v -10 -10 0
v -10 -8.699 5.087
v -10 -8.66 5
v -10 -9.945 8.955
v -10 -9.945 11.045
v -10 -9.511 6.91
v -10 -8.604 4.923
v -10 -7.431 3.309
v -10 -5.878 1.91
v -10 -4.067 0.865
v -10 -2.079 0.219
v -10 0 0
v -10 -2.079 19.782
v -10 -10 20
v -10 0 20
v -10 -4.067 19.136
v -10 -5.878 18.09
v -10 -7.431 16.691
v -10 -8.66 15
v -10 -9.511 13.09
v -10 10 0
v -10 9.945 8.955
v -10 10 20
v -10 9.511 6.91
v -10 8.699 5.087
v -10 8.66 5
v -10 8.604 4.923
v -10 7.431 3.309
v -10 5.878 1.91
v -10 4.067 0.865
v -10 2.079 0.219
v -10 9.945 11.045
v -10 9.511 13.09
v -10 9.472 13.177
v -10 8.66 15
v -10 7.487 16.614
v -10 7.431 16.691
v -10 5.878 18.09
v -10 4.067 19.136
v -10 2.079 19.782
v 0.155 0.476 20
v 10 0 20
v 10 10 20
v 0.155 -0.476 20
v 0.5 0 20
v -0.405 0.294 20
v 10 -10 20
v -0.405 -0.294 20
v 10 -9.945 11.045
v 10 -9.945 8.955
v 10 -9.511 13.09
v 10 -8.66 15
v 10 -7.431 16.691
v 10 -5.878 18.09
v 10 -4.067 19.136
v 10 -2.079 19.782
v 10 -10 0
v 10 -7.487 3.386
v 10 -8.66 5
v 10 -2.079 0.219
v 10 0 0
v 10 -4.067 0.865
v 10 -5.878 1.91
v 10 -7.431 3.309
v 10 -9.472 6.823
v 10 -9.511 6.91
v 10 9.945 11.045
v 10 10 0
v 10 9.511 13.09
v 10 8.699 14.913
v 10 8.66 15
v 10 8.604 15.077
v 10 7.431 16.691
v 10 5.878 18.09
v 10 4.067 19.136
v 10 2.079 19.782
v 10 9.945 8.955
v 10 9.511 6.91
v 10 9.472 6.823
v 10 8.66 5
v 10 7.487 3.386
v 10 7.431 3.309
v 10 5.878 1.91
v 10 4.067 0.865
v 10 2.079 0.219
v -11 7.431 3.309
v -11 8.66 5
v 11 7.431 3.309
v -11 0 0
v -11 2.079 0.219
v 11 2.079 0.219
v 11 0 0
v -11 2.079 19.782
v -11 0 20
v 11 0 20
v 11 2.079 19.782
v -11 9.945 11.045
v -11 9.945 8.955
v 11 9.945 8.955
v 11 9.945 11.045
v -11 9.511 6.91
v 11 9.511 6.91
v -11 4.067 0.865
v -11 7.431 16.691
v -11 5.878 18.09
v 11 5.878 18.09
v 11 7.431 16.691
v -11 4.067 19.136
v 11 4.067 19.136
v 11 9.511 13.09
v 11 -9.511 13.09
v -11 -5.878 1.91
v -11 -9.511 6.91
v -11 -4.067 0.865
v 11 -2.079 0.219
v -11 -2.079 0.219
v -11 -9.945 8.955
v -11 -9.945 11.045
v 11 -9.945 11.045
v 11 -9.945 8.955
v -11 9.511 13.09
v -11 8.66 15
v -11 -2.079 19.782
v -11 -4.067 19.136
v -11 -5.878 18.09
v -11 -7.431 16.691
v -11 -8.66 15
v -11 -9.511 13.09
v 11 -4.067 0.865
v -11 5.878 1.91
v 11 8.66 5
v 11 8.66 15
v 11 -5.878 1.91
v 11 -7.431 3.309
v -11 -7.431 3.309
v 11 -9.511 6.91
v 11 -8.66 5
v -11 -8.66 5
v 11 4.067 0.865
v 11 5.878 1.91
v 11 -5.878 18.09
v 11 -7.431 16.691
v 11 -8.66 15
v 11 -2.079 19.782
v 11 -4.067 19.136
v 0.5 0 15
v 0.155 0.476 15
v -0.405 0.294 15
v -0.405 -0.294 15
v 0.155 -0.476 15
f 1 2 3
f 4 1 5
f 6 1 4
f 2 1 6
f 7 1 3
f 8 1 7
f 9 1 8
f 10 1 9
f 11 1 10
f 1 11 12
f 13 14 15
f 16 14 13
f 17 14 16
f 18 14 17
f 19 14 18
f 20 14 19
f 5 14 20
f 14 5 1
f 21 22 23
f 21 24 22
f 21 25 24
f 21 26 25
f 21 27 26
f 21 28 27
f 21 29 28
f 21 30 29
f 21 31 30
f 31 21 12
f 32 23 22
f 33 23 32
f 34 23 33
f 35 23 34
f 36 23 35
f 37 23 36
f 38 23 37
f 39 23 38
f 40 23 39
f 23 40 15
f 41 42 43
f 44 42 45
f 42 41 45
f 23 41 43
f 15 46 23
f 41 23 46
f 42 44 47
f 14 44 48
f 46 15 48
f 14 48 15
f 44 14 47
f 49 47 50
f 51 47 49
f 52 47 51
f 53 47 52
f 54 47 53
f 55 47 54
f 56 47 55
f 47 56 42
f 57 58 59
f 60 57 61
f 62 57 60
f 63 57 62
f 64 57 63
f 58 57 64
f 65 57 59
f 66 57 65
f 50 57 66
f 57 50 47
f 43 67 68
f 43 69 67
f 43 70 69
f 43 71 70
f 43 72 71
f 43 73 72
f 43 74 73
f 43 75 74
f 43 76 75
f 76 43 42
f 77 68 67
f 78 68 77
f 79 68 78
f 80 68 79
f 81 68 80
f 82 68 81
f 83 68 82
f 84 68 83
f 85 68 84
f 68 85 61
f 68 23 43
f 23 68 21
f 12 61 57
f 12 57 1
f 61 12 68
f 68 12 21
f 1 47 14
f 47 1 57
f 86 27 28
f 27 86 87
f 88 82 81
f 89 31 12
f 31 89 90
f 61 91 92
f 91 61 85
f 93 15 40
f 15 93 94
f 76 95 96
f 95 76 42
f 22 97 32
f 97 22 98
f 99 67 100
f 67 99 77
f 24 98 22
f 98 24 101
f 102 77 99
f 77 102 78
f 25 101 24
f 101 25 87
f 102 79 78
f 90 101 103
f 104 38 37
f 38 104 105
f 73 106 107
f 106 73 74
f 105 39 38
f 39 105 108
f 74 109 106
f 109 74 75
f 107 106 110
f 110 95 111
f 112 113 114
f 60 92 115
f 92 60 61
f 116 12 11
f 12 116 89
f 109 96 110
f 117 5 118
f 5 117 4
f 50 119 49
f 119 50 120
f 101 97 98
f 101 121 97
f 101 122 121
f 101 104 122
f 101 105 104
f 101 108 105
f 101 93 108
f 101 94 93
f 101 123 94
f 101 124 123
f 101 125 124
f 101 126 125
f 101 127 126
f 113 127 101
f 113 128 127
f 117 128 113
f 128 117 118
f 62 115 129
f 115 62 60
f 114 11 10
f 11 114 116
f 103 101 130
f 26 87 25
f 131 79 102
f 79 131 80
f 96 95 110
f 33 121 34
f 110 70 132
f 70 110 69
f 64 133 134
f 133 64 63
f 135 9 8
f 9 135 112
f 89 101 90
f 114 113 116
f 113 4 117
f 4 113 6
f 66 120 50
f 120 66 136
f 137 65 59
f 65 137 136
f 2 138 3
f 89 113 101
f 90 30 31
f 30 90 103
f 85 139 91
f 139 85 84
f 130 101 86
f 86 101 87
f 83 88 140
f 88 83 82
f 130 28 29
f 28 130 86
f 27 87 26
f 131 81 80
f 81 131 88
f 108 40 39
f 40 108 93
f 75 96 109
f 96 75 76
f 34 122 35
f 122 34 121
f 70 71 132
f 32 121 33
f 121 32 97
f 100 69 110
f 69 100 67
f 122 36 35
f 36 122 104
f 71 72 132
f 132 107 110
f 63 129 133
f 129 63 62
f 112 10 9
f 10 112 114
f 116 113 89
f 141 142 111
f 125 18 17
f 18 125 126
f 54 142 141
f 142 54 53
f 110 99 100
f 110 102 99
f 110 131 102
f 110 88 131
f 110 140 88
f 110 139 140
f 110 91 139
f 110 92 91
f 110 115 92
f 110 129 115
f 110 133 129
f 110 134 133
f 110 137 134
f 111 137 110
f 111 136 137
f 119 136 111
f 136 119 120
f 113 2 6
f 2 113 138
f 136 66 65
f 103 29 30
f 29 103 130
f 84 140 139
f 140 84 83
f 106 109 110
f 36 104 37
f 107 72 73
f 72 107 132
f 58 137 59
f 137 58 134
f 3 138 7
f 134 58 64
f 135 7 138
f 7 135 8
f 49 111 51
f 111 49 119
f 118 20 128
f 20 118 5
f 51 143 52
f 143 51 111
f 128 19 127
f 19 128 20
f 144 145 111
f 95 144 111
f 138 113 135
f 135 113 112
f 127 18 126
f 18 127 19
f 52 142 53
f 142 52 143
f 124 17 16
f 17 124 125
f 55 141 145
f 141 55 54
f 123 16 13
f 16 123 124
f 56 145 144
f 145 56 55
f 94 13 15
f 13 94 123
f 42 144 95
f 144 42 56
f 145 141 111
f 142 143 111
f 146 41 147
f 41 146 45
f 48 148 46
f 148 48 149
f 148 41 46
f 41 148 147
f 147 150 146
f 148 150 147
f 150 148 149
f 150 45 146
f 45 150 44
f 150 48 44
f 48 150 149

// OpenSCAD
cube_size = 20; // [10:Small,20:Medium,30:Large]

hole_diameter = 1; 
hole_radius = hole_diameter/2;

// How deep should the center hole be?
hole_depth = 5; // [0,1,5,50]

show_wheels = "yes"; // [yes,no]

// How thick should the side wheels be?
wheel_thickness = 1; // [1:40]

// ignore this variable!
// foo=1;

// don't turn functions into params!
function BEZ03(u) = pow((1-u), 3);

// ignore variable values
bing = 3+4;
baz = 3 / hole_depth;

difference() {
  union() {
    translate([0, 0, cube_size/2]) cube([cube_size,cube_size,cube_size], center=true);
    if (show_wheels == "yes") {
      translate([0, 0, cube_size/2]) rotate([0, 90, 0]) {
        cylinder(r=cube_size/2, h=cube_size+(wheel_thickness*2), center=true);
      }
    }
  }
  translate([0, 0, cube_size-hole_depth]) cylinder(r=hole_radius, h=hole_depth);
}
        
